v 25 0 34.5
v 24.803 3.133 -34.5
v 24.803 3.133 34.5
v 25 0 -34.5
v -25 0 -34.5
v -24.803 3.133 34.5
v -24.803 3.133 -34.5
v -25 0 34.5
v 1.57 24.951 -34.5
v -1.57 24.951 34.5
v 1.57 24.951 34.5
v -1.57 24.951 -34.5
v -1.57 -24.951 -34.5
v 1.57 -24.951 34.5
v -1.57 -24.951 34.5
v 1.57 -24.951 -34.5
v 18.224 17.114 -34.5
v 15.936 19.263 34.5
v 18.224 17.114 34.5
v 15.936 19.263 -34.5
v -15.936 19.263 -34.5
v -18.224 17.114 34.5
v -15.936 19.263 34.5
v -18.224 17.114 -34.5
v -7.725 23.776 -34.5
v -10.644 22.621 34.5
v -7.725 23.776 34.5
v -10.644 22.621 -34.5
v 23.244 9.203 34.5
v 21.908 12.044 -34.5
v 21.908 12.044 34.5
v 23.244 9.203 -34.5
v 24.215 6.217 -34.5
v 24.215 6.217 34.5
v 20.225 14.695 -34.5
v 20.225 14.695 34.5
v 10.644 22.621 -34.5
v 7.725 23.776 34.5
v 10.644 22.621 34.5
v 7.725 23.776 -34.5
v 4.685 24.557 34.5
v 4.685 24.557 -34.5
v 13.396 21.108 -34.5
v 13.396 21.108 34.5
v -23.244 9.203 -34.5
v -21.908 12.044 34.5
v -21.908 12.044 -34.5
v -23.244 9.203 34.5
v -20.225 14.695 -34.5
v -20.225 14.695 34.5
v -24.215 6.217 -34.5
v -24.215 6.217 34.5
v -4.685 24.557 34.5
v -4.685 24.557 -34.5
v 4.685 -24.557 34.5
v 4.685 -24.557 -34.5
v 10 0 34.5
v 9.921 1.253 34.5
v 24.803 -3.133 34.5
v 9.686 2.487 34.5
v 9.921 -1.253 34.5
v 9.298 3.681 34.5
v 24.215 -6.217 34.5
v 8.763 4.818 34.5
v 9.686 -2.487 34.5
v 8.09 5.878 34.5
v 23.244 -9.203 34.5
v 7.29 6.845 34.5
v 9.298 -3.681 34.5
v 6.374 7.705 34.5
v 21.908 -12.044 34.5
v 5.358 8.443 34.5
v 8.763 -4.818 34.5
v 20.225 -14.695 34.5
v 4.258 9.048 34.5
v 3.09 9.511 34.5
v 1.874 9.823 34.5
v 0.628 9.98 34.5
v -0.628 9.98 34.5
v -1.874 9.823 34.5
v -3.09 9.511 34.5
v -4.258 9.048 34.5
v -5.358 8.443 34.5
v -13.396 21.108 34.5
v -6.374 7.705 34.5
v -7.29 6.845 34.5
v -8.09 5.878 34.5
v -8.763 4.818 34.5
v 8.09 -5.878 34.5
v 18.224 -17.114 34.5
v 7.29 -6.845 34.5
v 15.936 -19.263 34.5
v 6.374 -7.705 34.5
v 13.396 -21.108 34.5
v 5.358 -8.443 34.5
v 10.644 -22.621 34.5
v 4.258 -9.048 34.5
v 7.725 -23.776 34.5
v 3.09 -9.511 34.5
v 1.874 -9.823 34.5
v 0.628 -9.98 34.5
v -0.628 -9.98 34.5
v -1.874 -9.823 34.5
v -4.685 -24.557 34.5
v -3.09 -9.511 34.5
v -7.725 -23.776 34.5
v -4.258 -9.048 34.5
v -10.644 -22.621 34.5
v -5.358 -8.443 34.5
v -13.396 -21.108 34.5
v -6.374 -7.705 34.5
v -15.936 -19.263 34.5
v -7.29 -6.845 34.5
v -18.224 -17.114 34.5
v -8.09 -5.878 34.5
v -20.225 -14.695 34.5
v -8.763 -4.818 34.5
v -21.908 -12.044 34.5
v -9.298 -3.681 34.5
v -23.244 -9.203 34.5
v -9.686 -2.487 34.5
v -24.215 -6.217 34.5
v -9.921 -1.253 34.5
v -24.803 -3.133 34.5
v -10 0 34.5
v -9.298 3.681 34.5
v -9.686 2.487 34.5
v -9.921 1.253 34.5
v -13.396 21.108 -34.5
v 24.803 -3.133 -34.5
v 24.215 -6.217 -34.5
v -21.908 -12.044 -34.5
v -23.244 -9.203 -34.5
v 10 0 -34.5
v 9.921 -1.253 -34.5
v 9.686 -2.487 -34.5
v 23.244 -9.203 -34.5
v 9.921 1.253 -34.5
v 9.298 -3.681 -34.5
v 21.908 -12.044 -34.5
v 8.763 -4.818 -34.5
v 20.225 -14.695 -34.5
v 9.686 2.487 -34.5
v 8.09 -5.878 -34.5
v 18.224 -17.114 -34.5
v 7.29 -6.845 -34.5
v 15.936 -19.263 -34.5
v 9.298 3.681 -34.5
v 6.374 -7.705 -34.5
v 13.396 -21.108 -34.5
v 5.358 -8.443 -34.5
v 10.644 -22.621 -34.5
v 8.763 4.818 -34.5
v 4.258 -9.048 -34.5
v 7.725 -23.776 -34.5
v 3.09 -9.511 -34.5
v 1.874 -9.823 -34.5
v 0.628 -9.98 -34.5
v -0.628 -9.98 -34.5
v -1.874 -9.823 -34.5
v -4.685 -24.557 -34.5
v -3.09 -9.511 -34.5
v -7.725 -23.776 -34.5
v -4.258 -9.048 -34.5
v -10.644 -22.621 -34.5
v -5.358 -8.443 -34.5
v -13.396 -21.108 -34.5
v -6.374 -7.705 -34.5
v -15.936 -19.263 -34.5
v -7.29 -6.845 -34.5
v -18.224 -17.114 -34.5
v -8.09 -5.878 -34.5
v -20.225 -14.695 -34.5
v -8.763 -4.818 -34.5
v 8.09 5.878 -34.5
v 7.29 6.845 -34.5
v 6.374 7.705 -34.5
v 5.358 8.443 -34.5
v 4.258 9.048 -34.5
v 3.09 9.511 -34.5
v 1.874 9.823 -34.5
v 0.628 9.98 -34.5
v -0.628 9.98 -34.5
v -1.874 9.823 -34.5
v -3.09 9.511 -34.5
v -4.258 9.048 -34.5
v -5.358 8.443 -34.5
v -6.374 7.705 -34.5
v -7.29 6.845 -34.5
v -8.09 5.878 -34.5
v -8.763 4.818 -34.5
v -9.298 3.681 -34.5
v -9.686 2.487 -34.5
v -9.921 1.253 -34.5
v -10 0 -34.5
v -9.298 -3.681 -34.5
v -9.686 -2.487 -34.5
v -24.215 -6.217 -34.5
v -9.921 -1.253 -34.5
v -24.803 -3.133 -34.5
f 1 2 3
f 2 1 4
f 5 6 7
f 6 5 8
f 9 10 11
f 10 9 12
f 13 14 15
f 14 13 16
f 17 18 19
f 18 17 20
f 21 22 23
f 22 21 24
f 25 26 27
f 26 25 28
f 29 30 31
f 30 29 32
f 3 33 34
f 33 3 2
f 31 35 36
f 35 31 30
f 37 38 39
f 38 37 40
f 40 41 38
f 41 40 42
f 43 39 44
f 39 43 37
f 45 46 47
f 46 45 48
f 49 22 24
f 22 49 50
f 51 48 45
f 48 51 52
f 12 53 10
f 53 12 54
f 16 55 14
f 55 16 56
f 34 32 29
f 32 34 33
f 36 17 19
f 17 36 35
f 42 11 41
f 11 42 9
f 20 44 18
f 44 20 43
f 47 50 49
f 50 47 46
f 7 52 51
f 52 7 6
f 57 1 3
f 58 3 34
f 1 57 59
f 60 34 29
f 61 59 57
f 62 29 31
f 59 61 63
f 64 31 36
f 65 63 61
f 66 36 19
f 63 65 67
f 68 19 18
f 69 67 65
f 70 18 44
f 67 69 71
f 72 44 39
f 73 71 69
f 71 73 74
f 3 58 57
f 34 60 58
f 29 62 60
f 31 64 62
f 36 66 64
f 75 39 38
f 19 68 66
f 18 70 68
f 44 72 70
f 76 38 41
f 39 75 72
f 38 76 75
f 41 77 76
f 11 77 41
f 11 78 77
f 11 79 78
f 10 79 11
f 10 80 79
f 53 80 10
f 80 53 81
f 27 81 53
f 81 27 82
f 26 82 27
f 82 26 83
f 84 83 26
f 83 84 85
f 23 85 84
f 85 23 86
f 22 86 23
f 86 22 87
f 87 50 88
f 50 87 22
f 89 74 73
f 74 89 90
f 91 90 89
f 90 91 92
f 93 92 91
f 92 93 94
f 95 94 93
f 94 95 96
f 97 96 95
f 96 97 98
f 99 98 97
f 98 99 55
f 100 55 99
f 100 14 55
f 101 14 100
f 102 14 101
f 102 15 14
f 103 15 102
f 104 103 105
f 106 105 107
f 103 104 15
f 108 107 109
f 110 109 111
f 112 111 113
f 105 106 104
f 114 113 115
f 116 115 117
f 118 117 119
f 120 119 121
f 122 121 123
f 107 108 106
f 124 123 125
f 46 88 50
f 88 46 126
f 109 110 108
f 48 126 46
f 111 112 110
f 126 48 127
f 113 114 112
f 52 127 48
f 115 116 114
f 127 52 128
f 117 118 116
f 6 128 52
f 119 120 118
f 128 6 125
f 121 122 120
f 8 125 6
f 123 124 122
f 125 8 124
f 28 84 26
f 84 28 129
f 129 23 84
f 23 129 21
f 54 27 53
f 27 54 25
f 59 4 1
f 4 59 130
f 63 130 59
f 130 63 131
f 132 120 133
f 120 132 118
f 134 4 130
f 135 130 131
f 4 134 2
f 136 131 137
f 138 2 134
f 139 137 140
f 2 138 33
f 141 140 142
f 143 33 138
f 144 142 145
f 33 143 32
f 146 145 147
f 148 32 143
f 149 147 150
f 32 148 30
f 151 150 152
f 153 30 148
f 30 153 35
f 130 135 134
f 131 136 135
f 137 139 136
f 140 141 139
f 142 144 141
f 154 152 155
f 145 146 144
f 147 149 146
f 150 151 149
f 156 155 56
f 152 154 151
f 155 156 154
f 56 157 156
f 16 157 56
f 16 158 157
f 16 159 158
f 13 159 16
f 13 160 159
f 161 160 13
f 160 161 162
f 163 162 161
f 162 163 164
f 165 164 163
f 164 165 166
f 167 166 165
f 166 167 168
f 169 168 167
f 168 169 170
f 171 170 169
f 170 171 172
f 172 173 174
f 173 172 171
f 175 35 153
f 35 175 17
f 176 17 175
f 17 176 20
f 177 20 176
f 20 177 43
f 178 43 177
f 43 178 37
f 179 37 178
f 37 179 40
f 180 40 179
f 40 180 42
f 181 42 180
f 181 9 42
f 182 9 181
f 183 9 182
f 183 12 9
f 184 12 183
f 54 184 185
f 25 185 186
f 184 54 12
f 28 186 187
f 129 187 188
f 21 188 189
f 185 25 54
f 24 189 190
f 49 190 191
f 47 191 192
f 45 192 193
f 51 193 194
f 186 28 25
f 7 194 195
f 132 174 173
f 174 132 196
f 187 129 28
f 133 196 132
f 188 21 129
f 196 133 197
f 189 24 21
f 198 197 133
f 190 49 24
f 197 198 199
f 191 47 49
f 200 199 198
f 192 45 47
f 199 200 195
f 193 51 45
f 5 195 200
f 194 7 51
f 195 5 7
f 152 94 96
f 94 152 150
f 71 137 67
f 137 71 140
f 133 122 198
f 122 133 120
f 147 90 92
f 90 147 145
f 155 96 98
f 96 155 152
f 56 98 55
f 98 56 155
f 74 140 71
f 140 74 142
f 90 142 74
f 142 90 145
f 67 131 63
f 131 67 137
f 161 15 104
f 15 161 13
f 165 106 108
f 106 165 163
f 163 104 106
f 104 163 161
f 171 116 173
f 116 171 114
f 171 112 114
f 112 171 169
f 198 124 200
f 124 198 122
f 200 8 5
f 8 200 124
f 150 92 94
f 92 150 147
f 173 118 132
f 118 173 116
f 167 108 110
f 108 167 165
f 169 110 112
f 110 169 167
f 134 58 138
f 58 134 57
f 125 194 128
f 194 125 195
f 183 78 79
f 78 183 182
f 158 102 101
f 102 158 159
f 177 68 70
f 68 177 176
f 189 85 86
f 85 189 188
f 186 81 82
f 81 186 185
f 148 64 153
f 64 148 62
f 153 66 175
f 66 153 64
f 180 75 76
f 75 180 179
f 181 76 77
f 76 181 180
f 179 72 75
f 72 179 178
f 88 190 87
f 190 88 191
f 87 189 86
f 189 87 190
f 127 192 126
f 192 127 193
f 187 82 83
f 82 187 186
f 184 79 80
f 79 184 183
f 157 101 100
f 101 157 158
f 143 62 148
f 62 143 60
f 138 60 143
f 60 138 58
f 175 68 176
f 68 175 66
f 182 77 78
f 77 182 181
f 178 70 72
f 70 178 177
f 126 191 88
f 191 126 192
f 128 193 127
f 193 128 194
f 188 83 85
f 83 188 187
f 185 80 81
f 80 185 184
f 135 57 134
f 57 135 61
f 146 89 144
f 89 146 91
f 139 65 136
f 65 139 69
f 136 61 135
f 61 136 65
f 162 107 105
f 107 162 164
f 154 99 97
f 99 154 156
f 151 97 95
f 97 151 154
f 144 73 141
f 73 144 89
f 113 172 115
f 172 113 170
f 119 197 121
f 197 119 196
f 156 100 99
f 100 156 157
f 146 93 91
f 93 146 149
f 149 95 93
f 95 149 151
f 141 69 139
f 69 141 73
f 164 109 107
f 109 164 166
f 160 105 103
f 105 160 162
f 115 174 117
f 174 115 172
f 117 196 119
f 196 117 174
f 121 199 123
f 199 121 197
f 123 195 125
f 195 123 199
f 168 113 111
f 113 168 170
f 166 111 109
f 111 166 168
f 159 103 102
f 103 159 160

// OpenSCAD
$fn = 50;


difference() {
	union() {
		translate(v = [0, 0, -34.5000000000]) {
			cylinder(h = 69, r = 25.0000000000);
		}
	}
	union() {
		translate(v = [0, 0, -100.0000000000]) {
			cylinder(h = 200, r = 10);
		}
	}
}
